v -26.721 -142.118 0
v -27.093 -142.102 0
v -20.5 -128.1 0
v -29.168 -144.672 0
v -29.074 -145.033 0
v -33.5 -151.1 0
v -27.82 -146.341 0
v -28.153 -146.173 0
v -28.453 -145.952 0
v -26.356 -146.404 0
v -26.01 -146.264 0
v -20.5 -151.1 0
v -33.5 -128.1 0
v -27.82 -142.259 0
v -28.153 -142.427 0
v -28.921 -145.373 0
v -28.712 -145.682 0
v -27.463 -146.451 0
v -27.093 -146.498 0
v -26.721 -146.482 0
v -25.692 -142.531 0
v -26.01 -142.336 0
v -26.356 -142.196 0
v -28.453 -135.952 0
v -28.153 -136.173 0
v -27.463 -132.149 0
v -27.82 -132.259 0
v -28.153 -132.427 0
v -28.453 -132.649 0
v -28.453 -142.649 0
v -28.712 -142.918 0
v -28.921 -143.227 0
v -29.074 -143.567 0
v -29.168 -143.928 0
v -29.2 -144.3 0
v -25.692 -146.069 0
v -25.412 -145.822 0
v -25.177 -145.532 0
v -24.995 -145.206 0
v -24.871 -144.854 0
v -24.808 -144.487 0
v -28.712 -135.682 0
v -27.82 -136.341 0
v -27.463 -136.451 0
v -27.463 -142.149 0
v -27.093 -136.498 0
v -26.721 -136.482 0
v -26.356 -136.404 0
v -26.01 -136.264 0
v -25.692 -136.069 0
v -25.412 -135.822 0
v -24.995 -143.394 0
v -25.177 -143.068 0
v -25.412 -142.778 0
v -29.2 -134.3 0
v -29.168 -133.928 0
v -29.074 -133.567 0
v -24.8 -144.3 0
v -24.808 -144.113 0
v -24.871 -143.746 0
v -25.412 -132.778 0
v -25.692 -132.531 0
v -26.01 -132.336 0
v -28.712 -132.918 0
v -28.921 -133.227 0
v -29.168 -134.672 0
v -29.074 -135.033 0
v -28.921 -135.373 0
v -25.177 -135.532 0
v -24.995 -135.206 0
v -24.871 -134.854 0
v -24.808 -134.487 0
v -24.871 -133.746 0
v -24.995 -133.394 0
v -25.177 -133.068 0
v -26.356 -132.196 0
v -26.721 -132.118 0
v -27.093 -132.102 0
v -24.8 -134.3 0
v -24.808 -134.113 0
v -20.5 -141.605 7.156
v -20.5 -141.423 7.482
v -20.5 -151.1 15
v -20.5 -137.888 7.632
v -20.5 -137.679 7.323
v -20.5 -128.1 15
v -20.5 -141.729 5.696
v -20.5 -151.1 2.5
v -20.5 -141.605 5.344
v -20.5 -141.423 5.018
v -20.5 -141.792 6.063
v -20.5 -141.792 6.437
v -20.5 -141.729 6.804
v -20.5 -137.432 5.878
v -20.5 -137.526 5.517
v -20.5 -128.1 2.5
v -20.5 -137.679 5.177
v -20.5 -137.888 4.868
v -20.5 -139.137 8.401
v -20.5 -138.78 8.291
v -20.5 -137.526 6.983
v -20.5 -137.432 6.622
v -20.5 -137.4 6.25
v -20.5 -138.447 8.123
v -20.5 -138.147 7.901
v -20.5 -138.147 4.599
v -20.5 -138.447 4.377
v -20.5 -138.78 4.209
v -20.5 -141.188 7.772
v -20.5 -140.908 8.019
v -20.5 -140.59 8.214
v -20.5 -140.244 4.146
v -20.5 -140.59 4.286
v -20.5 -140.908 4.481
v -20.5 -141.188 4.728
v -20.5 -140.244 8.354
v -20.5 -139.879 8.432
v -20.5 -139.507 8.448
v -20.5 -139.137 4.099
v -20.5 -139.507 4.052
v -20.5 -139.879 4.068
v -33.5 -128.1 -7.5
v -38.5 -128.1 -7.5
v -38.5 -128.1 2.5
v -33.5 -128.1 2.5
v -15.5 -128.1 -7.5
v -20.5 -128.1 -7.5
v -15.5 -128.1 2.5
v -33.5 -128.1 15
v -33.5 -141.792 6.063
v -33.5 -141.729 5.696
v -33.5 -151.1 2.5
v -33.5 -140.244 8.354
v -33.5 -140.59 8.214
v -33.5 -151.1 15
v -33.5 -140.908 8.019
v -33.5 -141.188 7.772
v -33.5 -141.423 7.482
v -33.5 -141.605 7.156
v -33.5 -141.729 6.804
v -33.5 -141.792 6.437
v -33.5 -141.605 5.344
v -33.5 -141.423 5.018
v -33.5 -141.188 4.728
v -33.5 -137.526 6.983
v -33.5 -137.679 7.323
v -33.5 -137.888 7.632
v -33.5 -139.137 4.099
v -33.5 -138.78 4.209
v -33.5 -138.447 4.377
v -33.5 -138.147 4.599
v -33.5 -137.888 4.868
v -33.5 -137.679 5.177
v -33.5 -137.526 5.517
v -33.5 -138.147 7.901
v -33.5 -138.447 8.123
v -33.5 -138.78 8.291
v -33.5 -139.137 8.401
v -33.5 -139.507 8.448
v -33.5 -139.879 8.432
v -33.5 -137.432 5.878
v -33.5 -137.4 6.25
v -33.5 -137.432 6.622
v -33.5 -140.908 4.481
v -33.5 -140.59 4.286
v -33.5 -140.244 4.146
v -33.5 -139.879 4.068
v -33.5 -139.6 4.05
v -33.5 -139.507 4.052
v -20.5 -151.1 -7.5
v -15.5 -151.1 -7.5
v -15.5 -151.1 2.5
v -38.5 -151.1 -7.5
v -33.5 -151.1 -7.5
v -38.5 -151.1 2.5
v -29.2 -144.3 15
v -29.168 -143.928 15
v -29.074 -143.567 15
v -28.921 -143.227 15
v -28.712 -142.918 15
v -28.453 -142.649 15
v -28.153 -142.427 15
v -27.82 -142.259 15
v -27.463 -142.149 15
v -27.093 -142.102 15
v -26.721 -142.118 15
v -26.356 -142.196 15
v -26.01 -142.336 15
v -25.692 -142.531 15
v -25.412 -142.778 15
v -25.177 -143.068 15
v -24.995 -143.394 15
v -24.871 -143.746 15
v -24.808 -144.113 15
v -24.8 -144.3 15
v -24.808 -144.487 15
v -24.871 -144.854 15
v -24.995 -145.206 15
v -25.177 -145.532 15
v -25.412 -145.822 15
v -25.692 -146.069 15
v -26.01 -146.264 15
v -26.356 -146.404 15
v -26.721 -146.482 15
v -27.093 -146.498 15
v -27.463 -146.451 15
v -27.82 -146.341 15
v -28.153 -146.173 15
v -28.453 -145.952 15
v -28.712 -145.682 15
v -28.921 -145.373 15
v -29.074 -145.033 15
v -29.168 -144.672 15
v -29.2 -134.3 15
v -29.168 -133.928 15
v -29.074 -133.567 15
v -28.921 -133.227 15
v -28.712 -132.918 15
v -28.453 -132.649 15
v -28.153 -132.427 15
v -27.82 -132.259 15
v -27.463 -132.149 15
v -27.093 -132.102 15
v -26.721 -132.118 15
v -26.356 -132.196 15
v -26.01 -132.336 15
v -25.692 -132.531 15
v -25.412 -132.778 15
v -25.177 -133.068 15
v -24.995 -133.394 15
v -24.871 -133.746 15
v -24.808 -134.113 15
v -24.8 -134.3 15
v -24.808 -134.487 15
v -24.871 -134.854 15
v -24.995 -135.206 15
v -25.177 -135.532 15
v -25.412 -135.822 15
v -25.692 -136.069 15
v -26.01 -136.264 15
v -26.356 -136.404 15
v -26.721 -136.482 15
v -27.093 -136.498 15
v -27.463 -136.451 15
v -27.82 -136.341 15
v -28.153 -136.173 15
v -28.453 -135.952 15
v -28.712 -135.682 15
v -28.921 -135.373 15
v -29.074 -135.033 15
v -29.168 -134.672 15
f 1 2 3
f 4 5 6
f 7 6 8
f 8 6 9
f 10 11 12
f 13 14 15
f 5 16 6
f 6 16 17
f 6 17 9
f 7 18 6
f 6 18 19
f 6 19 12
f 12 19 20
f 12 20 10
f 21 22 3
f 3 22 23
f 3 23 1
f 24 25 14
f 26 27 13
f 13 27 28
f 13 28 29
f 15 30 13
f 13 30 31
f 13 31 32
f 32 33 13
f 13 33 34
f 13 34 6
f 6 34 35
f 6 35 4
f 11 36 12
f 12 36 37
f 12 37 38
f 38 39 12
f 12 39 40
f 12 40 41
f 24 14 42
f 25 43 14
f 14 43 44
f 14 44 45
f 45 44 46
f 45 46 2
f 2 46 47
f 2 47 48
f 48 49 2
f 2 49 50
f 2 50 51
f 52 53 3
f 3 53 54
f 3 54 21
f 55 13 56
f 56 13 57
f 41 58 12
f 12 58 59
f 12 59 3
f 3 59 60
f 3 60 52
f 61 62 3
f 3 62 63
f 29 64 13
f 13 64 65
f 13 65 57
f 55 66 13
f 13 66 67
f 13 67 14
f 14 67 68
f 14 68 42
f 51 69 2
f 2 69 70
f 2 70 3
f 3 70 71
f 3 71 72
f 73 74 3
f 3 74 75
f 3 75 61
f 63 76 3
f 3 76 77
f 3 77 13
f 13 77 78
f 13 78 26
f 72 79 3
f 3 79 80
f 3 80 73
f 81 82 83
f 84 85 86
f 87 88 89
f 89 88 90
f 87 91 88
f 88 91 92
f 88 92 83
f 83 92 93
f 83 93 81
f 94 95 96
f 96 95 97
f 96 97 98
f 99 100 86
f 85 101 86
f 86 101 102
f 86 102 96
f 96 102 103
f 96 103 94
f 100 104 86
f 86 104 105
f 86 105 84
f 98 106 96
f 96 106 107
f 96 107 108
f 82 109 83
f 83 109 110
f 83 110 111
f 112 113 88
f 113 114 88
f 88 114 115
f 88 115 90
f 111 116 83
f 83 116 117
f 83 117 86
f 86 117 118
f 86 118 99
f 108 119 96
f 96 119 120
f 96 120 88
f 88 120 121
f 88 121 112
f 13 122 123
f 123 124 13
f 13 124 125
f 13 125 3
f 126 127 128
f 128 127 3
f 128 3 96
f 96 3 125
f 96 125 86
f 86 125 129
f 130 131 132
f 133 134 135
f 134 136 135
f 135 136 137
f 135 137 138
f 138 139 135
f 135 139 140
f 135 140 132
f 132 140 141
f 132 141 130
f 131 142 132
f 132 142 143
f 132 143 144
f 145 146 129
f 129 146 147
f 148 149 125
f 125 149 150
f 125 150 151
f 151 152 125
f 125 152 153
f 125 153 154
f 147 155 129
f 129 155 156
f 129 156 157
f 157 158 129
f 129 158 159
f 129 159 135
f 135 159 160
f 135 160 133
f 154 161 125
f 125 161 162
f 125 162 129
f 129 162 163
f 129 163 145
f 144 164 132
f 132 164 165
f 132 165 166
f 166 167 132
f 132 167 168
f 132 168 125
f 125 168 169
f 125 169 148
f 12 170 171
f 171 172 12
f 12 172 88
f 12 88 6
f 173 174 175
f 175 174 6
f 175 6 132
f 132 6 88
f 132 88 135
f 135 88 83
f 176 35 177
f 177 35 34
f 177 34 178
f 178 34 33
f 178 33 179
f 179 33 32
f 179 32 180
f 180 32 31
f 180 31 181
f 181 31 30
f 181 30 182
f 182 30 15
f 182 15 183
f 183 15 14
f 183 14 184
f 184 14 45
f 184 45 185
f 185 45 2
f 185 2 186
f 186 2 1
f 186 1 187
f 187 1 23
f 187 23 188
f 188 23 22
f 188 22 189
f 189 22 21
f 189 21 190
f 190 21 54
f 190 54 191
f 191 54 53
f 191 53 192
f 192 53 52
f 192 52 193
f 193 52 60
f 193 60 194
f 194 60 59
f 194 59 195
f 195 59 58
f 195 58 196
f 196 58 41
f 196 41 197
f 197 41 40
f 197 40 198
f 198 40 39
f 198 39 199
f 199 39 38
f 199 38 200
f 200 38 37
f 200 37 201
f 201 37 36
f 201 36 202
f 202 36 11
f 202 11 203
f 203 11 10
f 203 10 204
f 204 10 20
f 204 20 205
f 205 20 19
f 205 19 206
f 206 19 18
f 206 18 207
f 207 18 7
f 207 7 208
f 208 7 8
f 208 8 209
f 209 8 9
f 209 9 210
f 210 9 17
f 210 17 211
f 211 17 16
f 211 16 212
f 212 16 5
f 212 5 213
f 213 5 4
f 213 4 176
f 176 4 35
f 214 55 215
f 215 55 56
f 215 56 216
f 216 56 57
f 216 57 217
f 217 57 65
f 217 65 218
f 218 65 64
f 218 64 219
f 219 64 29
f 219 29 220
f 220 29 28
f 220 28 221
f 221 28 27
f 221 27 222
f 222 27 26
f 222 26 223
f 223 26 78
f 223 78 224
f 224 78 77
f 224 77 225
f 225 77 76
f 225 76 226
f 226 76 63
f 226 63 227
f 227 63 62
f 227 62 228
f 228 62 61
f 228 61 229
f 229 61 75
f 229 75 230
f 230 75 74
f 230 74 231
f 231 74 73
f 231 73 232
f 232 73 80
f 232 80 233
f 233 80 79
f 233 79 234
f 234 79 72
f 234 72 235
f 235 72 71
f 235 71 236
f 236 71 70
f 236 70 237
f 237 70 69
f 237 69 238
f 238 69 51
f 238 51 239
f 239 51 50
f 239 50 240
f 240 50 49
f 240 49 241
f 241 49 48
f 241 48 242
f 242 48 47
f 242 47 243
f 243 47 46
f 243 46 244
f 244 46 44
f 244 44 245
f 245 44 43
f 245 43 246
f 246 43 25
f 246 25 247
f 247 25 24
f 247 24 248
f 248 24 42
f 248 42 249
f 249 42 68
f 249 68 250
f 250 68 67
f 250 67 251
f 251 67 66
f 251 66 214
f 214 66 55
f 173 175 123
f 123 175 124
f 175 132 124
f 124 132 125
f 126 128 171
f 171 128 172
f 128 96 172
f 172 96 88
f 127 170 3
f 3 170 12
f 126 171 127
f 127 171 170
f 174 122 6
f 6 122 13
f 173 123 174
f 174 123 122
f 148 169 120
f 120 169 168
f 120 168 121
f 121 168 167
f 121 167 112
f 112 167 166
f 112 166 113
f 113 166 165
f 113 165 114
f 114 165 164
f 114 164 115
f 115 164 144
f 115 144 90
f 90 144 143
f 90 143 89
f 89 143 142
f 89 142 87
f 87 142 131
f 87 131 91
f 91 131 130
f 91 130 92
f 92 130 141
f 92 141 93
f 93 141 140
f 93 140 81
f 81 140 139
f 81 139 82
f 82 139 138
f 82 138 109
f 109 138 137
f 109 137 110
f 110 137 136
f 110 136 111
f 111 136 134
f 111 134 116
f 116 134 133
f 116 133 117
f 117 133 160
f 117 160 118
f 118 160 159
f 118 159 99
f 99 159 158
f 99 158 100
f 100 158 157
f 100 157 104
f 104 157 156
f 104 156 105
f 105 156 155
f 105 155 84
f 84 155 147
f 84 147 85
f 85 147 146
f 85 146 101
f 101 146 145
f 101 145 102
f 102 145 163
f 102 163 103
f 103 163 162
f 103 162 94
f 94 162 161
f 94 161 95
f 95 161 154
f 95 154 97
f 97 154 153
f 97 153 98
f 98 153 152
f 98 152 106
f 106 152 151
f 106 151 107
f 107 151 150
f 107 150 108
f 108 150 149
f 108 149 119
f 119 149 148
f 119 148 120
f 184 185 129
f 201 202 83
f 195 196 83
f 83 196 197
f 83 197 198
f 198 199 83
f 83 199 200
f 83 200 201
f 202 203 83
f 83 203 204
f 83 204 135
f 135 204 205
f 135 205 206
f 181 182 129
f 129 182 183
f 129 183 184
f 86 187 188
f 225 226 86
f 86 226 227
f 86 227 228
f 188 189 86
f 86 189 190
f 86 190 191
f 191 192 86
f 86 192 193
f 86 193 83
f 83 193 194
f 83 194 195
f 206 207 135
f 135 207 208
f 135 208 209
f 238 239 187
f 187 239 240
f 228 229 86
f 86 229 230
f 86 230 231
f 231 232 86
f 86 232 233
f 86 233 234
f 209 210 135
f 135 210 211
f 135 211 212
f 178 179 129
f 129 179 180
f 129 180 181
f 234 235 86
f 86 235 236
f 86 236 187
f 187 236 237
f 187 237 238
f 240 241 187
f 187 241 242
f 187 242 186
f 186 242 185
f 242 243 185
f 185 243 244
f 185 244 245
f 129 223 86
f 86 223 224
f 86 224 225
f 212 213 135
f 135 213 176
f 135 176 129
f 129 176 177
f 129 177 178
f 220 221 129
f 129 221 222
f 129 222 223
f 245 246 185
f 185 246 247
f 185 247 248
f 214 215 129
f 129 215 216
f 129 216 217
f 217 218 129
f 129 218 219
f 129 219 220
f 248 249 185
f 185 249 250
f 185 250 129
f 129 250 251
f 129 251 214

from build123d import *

# Parameters (mm, degrees)
SKETCH2_W           = 13
SKETCH2_H           = 23
SKETCH2_R           = 2.2
BOSS_EXTRUDE1_DEPTH = 10
SKETCH5_W           = 5
SKETCH5_H           = 23
BOSS_EXTRUDE2_DEPTH = 2.5
SKETCH6_W           = 5
SKETCH6_H           = 23
BOSS_EXTRUDE3_DEPTH = 7.5
CUT_EXTRUDE2_DEPTH  = 153.496625691
SKETCH8_W           = 13
SKETCH8_H           = 23
SKETCH8_R           = 2.2
BOSS_EXTRUDE4_DEPTH = 5


with BuildPart() as part:
    # Sketch2 → Boss-Extrude1 (new body)
    with BuildSketch(Plane.XY):
        with Locations((-27, -139.600035894)):
            Rectangle(SKETCH2_W, SKETCH2_H)
        with Locations((-27, -144.300035894)):
            Circle(SKETCH2_R, mode=Mode.SUBTRACT)
        with Locations((-27, -134.300035894)):
            Circle(SKETCH2_R, mode=Mode.SUBTRACT)
    extrude(amount=BOSS_EXTRUDE1_DEPTH)

    # Sketch5 → Boss-Extrude2 (add)
    with BuildSketch(Plane(origin=(0, 0, 0), x_dir=(-1, 0, 0), z_dir=(0, 0, -1))):
        with Locations((18, -139.600035894)):
            Rectangle(SKETCH5_W, SKETCH5_H)
        with Locations((36, -139.600035894)):
            Rectangle(SKETCH5_W, SKETCH5_H)
    extrude(amount=-BOSS_EXTRUDE2_DEPTH)

    # Sketch6 → Boss-Extrude3 (add)
    with BuildSketch(Plane(origin=(0, 0, 0), x_dir=(-1, 0, 0), z_dir=(0, 0, -1))):
        with Locations((18, -139.600035894)):
            Rectangle(SKETCH6_W, SKETCH6_H)
        with Locations((36, -139.600035894)):
            Rectangle(SKETCH6_W, SKETCH6_H)
    extrude(amount=BOSS_EXTRUDE3_DEPTH)

    # Sketch7 → Cut-Extrude2 (cut, through all)
    with BuildSketch(Plane(origin=(-20.5, 0, 0), x_dir=(0, 0, -1), z_dir=(1, 0, 0))):
        with BuildLine():
            ThreePointArc((-6.25, -137.400035894), (-8.45, -139.600035894), (-6.25, -141.800035894))
            Line((-6.25, -141.800035894), (-6.25, -137.400035894))
        make_face()
        with BuildLine():
            Line((-6.25, -137.400035894), (-6.25, -141.800035894))
            ThreePointArc((-6.25, -141.800035894), (-4.694365081, -141.155670812), (-4.05, -139.600035894))
            ThreePointArc((-4.05, -139.600035894), (-4.694365081, -138.044400975), (-6.25, -137.400035894))
        make_face()
    extrude(amount=-CUT_EXTRUDE2_DEPTH, mode=Mode.SUBTRACT)

    # Sketch8 → Boss-Extrude4 (add)
    with BuildSketch(Plane.XY.offset(10)):
        with Locations((-27, -139.600035894)):
            Rectangle(SKETCH8_W, SKETCH8_H)
        with Locations((-27, -134.300035894)):
            Circle(SKETCH8_R, mode=Mode.SUBTRACT)
        with Locations((-27, -144.300035894)):
            Circle(SKETCH8_R, mode=Mode.SUBTRACT)
    extrude(amount=BOSS_EXTRUDE4_DEPTH)


solid = part.part
